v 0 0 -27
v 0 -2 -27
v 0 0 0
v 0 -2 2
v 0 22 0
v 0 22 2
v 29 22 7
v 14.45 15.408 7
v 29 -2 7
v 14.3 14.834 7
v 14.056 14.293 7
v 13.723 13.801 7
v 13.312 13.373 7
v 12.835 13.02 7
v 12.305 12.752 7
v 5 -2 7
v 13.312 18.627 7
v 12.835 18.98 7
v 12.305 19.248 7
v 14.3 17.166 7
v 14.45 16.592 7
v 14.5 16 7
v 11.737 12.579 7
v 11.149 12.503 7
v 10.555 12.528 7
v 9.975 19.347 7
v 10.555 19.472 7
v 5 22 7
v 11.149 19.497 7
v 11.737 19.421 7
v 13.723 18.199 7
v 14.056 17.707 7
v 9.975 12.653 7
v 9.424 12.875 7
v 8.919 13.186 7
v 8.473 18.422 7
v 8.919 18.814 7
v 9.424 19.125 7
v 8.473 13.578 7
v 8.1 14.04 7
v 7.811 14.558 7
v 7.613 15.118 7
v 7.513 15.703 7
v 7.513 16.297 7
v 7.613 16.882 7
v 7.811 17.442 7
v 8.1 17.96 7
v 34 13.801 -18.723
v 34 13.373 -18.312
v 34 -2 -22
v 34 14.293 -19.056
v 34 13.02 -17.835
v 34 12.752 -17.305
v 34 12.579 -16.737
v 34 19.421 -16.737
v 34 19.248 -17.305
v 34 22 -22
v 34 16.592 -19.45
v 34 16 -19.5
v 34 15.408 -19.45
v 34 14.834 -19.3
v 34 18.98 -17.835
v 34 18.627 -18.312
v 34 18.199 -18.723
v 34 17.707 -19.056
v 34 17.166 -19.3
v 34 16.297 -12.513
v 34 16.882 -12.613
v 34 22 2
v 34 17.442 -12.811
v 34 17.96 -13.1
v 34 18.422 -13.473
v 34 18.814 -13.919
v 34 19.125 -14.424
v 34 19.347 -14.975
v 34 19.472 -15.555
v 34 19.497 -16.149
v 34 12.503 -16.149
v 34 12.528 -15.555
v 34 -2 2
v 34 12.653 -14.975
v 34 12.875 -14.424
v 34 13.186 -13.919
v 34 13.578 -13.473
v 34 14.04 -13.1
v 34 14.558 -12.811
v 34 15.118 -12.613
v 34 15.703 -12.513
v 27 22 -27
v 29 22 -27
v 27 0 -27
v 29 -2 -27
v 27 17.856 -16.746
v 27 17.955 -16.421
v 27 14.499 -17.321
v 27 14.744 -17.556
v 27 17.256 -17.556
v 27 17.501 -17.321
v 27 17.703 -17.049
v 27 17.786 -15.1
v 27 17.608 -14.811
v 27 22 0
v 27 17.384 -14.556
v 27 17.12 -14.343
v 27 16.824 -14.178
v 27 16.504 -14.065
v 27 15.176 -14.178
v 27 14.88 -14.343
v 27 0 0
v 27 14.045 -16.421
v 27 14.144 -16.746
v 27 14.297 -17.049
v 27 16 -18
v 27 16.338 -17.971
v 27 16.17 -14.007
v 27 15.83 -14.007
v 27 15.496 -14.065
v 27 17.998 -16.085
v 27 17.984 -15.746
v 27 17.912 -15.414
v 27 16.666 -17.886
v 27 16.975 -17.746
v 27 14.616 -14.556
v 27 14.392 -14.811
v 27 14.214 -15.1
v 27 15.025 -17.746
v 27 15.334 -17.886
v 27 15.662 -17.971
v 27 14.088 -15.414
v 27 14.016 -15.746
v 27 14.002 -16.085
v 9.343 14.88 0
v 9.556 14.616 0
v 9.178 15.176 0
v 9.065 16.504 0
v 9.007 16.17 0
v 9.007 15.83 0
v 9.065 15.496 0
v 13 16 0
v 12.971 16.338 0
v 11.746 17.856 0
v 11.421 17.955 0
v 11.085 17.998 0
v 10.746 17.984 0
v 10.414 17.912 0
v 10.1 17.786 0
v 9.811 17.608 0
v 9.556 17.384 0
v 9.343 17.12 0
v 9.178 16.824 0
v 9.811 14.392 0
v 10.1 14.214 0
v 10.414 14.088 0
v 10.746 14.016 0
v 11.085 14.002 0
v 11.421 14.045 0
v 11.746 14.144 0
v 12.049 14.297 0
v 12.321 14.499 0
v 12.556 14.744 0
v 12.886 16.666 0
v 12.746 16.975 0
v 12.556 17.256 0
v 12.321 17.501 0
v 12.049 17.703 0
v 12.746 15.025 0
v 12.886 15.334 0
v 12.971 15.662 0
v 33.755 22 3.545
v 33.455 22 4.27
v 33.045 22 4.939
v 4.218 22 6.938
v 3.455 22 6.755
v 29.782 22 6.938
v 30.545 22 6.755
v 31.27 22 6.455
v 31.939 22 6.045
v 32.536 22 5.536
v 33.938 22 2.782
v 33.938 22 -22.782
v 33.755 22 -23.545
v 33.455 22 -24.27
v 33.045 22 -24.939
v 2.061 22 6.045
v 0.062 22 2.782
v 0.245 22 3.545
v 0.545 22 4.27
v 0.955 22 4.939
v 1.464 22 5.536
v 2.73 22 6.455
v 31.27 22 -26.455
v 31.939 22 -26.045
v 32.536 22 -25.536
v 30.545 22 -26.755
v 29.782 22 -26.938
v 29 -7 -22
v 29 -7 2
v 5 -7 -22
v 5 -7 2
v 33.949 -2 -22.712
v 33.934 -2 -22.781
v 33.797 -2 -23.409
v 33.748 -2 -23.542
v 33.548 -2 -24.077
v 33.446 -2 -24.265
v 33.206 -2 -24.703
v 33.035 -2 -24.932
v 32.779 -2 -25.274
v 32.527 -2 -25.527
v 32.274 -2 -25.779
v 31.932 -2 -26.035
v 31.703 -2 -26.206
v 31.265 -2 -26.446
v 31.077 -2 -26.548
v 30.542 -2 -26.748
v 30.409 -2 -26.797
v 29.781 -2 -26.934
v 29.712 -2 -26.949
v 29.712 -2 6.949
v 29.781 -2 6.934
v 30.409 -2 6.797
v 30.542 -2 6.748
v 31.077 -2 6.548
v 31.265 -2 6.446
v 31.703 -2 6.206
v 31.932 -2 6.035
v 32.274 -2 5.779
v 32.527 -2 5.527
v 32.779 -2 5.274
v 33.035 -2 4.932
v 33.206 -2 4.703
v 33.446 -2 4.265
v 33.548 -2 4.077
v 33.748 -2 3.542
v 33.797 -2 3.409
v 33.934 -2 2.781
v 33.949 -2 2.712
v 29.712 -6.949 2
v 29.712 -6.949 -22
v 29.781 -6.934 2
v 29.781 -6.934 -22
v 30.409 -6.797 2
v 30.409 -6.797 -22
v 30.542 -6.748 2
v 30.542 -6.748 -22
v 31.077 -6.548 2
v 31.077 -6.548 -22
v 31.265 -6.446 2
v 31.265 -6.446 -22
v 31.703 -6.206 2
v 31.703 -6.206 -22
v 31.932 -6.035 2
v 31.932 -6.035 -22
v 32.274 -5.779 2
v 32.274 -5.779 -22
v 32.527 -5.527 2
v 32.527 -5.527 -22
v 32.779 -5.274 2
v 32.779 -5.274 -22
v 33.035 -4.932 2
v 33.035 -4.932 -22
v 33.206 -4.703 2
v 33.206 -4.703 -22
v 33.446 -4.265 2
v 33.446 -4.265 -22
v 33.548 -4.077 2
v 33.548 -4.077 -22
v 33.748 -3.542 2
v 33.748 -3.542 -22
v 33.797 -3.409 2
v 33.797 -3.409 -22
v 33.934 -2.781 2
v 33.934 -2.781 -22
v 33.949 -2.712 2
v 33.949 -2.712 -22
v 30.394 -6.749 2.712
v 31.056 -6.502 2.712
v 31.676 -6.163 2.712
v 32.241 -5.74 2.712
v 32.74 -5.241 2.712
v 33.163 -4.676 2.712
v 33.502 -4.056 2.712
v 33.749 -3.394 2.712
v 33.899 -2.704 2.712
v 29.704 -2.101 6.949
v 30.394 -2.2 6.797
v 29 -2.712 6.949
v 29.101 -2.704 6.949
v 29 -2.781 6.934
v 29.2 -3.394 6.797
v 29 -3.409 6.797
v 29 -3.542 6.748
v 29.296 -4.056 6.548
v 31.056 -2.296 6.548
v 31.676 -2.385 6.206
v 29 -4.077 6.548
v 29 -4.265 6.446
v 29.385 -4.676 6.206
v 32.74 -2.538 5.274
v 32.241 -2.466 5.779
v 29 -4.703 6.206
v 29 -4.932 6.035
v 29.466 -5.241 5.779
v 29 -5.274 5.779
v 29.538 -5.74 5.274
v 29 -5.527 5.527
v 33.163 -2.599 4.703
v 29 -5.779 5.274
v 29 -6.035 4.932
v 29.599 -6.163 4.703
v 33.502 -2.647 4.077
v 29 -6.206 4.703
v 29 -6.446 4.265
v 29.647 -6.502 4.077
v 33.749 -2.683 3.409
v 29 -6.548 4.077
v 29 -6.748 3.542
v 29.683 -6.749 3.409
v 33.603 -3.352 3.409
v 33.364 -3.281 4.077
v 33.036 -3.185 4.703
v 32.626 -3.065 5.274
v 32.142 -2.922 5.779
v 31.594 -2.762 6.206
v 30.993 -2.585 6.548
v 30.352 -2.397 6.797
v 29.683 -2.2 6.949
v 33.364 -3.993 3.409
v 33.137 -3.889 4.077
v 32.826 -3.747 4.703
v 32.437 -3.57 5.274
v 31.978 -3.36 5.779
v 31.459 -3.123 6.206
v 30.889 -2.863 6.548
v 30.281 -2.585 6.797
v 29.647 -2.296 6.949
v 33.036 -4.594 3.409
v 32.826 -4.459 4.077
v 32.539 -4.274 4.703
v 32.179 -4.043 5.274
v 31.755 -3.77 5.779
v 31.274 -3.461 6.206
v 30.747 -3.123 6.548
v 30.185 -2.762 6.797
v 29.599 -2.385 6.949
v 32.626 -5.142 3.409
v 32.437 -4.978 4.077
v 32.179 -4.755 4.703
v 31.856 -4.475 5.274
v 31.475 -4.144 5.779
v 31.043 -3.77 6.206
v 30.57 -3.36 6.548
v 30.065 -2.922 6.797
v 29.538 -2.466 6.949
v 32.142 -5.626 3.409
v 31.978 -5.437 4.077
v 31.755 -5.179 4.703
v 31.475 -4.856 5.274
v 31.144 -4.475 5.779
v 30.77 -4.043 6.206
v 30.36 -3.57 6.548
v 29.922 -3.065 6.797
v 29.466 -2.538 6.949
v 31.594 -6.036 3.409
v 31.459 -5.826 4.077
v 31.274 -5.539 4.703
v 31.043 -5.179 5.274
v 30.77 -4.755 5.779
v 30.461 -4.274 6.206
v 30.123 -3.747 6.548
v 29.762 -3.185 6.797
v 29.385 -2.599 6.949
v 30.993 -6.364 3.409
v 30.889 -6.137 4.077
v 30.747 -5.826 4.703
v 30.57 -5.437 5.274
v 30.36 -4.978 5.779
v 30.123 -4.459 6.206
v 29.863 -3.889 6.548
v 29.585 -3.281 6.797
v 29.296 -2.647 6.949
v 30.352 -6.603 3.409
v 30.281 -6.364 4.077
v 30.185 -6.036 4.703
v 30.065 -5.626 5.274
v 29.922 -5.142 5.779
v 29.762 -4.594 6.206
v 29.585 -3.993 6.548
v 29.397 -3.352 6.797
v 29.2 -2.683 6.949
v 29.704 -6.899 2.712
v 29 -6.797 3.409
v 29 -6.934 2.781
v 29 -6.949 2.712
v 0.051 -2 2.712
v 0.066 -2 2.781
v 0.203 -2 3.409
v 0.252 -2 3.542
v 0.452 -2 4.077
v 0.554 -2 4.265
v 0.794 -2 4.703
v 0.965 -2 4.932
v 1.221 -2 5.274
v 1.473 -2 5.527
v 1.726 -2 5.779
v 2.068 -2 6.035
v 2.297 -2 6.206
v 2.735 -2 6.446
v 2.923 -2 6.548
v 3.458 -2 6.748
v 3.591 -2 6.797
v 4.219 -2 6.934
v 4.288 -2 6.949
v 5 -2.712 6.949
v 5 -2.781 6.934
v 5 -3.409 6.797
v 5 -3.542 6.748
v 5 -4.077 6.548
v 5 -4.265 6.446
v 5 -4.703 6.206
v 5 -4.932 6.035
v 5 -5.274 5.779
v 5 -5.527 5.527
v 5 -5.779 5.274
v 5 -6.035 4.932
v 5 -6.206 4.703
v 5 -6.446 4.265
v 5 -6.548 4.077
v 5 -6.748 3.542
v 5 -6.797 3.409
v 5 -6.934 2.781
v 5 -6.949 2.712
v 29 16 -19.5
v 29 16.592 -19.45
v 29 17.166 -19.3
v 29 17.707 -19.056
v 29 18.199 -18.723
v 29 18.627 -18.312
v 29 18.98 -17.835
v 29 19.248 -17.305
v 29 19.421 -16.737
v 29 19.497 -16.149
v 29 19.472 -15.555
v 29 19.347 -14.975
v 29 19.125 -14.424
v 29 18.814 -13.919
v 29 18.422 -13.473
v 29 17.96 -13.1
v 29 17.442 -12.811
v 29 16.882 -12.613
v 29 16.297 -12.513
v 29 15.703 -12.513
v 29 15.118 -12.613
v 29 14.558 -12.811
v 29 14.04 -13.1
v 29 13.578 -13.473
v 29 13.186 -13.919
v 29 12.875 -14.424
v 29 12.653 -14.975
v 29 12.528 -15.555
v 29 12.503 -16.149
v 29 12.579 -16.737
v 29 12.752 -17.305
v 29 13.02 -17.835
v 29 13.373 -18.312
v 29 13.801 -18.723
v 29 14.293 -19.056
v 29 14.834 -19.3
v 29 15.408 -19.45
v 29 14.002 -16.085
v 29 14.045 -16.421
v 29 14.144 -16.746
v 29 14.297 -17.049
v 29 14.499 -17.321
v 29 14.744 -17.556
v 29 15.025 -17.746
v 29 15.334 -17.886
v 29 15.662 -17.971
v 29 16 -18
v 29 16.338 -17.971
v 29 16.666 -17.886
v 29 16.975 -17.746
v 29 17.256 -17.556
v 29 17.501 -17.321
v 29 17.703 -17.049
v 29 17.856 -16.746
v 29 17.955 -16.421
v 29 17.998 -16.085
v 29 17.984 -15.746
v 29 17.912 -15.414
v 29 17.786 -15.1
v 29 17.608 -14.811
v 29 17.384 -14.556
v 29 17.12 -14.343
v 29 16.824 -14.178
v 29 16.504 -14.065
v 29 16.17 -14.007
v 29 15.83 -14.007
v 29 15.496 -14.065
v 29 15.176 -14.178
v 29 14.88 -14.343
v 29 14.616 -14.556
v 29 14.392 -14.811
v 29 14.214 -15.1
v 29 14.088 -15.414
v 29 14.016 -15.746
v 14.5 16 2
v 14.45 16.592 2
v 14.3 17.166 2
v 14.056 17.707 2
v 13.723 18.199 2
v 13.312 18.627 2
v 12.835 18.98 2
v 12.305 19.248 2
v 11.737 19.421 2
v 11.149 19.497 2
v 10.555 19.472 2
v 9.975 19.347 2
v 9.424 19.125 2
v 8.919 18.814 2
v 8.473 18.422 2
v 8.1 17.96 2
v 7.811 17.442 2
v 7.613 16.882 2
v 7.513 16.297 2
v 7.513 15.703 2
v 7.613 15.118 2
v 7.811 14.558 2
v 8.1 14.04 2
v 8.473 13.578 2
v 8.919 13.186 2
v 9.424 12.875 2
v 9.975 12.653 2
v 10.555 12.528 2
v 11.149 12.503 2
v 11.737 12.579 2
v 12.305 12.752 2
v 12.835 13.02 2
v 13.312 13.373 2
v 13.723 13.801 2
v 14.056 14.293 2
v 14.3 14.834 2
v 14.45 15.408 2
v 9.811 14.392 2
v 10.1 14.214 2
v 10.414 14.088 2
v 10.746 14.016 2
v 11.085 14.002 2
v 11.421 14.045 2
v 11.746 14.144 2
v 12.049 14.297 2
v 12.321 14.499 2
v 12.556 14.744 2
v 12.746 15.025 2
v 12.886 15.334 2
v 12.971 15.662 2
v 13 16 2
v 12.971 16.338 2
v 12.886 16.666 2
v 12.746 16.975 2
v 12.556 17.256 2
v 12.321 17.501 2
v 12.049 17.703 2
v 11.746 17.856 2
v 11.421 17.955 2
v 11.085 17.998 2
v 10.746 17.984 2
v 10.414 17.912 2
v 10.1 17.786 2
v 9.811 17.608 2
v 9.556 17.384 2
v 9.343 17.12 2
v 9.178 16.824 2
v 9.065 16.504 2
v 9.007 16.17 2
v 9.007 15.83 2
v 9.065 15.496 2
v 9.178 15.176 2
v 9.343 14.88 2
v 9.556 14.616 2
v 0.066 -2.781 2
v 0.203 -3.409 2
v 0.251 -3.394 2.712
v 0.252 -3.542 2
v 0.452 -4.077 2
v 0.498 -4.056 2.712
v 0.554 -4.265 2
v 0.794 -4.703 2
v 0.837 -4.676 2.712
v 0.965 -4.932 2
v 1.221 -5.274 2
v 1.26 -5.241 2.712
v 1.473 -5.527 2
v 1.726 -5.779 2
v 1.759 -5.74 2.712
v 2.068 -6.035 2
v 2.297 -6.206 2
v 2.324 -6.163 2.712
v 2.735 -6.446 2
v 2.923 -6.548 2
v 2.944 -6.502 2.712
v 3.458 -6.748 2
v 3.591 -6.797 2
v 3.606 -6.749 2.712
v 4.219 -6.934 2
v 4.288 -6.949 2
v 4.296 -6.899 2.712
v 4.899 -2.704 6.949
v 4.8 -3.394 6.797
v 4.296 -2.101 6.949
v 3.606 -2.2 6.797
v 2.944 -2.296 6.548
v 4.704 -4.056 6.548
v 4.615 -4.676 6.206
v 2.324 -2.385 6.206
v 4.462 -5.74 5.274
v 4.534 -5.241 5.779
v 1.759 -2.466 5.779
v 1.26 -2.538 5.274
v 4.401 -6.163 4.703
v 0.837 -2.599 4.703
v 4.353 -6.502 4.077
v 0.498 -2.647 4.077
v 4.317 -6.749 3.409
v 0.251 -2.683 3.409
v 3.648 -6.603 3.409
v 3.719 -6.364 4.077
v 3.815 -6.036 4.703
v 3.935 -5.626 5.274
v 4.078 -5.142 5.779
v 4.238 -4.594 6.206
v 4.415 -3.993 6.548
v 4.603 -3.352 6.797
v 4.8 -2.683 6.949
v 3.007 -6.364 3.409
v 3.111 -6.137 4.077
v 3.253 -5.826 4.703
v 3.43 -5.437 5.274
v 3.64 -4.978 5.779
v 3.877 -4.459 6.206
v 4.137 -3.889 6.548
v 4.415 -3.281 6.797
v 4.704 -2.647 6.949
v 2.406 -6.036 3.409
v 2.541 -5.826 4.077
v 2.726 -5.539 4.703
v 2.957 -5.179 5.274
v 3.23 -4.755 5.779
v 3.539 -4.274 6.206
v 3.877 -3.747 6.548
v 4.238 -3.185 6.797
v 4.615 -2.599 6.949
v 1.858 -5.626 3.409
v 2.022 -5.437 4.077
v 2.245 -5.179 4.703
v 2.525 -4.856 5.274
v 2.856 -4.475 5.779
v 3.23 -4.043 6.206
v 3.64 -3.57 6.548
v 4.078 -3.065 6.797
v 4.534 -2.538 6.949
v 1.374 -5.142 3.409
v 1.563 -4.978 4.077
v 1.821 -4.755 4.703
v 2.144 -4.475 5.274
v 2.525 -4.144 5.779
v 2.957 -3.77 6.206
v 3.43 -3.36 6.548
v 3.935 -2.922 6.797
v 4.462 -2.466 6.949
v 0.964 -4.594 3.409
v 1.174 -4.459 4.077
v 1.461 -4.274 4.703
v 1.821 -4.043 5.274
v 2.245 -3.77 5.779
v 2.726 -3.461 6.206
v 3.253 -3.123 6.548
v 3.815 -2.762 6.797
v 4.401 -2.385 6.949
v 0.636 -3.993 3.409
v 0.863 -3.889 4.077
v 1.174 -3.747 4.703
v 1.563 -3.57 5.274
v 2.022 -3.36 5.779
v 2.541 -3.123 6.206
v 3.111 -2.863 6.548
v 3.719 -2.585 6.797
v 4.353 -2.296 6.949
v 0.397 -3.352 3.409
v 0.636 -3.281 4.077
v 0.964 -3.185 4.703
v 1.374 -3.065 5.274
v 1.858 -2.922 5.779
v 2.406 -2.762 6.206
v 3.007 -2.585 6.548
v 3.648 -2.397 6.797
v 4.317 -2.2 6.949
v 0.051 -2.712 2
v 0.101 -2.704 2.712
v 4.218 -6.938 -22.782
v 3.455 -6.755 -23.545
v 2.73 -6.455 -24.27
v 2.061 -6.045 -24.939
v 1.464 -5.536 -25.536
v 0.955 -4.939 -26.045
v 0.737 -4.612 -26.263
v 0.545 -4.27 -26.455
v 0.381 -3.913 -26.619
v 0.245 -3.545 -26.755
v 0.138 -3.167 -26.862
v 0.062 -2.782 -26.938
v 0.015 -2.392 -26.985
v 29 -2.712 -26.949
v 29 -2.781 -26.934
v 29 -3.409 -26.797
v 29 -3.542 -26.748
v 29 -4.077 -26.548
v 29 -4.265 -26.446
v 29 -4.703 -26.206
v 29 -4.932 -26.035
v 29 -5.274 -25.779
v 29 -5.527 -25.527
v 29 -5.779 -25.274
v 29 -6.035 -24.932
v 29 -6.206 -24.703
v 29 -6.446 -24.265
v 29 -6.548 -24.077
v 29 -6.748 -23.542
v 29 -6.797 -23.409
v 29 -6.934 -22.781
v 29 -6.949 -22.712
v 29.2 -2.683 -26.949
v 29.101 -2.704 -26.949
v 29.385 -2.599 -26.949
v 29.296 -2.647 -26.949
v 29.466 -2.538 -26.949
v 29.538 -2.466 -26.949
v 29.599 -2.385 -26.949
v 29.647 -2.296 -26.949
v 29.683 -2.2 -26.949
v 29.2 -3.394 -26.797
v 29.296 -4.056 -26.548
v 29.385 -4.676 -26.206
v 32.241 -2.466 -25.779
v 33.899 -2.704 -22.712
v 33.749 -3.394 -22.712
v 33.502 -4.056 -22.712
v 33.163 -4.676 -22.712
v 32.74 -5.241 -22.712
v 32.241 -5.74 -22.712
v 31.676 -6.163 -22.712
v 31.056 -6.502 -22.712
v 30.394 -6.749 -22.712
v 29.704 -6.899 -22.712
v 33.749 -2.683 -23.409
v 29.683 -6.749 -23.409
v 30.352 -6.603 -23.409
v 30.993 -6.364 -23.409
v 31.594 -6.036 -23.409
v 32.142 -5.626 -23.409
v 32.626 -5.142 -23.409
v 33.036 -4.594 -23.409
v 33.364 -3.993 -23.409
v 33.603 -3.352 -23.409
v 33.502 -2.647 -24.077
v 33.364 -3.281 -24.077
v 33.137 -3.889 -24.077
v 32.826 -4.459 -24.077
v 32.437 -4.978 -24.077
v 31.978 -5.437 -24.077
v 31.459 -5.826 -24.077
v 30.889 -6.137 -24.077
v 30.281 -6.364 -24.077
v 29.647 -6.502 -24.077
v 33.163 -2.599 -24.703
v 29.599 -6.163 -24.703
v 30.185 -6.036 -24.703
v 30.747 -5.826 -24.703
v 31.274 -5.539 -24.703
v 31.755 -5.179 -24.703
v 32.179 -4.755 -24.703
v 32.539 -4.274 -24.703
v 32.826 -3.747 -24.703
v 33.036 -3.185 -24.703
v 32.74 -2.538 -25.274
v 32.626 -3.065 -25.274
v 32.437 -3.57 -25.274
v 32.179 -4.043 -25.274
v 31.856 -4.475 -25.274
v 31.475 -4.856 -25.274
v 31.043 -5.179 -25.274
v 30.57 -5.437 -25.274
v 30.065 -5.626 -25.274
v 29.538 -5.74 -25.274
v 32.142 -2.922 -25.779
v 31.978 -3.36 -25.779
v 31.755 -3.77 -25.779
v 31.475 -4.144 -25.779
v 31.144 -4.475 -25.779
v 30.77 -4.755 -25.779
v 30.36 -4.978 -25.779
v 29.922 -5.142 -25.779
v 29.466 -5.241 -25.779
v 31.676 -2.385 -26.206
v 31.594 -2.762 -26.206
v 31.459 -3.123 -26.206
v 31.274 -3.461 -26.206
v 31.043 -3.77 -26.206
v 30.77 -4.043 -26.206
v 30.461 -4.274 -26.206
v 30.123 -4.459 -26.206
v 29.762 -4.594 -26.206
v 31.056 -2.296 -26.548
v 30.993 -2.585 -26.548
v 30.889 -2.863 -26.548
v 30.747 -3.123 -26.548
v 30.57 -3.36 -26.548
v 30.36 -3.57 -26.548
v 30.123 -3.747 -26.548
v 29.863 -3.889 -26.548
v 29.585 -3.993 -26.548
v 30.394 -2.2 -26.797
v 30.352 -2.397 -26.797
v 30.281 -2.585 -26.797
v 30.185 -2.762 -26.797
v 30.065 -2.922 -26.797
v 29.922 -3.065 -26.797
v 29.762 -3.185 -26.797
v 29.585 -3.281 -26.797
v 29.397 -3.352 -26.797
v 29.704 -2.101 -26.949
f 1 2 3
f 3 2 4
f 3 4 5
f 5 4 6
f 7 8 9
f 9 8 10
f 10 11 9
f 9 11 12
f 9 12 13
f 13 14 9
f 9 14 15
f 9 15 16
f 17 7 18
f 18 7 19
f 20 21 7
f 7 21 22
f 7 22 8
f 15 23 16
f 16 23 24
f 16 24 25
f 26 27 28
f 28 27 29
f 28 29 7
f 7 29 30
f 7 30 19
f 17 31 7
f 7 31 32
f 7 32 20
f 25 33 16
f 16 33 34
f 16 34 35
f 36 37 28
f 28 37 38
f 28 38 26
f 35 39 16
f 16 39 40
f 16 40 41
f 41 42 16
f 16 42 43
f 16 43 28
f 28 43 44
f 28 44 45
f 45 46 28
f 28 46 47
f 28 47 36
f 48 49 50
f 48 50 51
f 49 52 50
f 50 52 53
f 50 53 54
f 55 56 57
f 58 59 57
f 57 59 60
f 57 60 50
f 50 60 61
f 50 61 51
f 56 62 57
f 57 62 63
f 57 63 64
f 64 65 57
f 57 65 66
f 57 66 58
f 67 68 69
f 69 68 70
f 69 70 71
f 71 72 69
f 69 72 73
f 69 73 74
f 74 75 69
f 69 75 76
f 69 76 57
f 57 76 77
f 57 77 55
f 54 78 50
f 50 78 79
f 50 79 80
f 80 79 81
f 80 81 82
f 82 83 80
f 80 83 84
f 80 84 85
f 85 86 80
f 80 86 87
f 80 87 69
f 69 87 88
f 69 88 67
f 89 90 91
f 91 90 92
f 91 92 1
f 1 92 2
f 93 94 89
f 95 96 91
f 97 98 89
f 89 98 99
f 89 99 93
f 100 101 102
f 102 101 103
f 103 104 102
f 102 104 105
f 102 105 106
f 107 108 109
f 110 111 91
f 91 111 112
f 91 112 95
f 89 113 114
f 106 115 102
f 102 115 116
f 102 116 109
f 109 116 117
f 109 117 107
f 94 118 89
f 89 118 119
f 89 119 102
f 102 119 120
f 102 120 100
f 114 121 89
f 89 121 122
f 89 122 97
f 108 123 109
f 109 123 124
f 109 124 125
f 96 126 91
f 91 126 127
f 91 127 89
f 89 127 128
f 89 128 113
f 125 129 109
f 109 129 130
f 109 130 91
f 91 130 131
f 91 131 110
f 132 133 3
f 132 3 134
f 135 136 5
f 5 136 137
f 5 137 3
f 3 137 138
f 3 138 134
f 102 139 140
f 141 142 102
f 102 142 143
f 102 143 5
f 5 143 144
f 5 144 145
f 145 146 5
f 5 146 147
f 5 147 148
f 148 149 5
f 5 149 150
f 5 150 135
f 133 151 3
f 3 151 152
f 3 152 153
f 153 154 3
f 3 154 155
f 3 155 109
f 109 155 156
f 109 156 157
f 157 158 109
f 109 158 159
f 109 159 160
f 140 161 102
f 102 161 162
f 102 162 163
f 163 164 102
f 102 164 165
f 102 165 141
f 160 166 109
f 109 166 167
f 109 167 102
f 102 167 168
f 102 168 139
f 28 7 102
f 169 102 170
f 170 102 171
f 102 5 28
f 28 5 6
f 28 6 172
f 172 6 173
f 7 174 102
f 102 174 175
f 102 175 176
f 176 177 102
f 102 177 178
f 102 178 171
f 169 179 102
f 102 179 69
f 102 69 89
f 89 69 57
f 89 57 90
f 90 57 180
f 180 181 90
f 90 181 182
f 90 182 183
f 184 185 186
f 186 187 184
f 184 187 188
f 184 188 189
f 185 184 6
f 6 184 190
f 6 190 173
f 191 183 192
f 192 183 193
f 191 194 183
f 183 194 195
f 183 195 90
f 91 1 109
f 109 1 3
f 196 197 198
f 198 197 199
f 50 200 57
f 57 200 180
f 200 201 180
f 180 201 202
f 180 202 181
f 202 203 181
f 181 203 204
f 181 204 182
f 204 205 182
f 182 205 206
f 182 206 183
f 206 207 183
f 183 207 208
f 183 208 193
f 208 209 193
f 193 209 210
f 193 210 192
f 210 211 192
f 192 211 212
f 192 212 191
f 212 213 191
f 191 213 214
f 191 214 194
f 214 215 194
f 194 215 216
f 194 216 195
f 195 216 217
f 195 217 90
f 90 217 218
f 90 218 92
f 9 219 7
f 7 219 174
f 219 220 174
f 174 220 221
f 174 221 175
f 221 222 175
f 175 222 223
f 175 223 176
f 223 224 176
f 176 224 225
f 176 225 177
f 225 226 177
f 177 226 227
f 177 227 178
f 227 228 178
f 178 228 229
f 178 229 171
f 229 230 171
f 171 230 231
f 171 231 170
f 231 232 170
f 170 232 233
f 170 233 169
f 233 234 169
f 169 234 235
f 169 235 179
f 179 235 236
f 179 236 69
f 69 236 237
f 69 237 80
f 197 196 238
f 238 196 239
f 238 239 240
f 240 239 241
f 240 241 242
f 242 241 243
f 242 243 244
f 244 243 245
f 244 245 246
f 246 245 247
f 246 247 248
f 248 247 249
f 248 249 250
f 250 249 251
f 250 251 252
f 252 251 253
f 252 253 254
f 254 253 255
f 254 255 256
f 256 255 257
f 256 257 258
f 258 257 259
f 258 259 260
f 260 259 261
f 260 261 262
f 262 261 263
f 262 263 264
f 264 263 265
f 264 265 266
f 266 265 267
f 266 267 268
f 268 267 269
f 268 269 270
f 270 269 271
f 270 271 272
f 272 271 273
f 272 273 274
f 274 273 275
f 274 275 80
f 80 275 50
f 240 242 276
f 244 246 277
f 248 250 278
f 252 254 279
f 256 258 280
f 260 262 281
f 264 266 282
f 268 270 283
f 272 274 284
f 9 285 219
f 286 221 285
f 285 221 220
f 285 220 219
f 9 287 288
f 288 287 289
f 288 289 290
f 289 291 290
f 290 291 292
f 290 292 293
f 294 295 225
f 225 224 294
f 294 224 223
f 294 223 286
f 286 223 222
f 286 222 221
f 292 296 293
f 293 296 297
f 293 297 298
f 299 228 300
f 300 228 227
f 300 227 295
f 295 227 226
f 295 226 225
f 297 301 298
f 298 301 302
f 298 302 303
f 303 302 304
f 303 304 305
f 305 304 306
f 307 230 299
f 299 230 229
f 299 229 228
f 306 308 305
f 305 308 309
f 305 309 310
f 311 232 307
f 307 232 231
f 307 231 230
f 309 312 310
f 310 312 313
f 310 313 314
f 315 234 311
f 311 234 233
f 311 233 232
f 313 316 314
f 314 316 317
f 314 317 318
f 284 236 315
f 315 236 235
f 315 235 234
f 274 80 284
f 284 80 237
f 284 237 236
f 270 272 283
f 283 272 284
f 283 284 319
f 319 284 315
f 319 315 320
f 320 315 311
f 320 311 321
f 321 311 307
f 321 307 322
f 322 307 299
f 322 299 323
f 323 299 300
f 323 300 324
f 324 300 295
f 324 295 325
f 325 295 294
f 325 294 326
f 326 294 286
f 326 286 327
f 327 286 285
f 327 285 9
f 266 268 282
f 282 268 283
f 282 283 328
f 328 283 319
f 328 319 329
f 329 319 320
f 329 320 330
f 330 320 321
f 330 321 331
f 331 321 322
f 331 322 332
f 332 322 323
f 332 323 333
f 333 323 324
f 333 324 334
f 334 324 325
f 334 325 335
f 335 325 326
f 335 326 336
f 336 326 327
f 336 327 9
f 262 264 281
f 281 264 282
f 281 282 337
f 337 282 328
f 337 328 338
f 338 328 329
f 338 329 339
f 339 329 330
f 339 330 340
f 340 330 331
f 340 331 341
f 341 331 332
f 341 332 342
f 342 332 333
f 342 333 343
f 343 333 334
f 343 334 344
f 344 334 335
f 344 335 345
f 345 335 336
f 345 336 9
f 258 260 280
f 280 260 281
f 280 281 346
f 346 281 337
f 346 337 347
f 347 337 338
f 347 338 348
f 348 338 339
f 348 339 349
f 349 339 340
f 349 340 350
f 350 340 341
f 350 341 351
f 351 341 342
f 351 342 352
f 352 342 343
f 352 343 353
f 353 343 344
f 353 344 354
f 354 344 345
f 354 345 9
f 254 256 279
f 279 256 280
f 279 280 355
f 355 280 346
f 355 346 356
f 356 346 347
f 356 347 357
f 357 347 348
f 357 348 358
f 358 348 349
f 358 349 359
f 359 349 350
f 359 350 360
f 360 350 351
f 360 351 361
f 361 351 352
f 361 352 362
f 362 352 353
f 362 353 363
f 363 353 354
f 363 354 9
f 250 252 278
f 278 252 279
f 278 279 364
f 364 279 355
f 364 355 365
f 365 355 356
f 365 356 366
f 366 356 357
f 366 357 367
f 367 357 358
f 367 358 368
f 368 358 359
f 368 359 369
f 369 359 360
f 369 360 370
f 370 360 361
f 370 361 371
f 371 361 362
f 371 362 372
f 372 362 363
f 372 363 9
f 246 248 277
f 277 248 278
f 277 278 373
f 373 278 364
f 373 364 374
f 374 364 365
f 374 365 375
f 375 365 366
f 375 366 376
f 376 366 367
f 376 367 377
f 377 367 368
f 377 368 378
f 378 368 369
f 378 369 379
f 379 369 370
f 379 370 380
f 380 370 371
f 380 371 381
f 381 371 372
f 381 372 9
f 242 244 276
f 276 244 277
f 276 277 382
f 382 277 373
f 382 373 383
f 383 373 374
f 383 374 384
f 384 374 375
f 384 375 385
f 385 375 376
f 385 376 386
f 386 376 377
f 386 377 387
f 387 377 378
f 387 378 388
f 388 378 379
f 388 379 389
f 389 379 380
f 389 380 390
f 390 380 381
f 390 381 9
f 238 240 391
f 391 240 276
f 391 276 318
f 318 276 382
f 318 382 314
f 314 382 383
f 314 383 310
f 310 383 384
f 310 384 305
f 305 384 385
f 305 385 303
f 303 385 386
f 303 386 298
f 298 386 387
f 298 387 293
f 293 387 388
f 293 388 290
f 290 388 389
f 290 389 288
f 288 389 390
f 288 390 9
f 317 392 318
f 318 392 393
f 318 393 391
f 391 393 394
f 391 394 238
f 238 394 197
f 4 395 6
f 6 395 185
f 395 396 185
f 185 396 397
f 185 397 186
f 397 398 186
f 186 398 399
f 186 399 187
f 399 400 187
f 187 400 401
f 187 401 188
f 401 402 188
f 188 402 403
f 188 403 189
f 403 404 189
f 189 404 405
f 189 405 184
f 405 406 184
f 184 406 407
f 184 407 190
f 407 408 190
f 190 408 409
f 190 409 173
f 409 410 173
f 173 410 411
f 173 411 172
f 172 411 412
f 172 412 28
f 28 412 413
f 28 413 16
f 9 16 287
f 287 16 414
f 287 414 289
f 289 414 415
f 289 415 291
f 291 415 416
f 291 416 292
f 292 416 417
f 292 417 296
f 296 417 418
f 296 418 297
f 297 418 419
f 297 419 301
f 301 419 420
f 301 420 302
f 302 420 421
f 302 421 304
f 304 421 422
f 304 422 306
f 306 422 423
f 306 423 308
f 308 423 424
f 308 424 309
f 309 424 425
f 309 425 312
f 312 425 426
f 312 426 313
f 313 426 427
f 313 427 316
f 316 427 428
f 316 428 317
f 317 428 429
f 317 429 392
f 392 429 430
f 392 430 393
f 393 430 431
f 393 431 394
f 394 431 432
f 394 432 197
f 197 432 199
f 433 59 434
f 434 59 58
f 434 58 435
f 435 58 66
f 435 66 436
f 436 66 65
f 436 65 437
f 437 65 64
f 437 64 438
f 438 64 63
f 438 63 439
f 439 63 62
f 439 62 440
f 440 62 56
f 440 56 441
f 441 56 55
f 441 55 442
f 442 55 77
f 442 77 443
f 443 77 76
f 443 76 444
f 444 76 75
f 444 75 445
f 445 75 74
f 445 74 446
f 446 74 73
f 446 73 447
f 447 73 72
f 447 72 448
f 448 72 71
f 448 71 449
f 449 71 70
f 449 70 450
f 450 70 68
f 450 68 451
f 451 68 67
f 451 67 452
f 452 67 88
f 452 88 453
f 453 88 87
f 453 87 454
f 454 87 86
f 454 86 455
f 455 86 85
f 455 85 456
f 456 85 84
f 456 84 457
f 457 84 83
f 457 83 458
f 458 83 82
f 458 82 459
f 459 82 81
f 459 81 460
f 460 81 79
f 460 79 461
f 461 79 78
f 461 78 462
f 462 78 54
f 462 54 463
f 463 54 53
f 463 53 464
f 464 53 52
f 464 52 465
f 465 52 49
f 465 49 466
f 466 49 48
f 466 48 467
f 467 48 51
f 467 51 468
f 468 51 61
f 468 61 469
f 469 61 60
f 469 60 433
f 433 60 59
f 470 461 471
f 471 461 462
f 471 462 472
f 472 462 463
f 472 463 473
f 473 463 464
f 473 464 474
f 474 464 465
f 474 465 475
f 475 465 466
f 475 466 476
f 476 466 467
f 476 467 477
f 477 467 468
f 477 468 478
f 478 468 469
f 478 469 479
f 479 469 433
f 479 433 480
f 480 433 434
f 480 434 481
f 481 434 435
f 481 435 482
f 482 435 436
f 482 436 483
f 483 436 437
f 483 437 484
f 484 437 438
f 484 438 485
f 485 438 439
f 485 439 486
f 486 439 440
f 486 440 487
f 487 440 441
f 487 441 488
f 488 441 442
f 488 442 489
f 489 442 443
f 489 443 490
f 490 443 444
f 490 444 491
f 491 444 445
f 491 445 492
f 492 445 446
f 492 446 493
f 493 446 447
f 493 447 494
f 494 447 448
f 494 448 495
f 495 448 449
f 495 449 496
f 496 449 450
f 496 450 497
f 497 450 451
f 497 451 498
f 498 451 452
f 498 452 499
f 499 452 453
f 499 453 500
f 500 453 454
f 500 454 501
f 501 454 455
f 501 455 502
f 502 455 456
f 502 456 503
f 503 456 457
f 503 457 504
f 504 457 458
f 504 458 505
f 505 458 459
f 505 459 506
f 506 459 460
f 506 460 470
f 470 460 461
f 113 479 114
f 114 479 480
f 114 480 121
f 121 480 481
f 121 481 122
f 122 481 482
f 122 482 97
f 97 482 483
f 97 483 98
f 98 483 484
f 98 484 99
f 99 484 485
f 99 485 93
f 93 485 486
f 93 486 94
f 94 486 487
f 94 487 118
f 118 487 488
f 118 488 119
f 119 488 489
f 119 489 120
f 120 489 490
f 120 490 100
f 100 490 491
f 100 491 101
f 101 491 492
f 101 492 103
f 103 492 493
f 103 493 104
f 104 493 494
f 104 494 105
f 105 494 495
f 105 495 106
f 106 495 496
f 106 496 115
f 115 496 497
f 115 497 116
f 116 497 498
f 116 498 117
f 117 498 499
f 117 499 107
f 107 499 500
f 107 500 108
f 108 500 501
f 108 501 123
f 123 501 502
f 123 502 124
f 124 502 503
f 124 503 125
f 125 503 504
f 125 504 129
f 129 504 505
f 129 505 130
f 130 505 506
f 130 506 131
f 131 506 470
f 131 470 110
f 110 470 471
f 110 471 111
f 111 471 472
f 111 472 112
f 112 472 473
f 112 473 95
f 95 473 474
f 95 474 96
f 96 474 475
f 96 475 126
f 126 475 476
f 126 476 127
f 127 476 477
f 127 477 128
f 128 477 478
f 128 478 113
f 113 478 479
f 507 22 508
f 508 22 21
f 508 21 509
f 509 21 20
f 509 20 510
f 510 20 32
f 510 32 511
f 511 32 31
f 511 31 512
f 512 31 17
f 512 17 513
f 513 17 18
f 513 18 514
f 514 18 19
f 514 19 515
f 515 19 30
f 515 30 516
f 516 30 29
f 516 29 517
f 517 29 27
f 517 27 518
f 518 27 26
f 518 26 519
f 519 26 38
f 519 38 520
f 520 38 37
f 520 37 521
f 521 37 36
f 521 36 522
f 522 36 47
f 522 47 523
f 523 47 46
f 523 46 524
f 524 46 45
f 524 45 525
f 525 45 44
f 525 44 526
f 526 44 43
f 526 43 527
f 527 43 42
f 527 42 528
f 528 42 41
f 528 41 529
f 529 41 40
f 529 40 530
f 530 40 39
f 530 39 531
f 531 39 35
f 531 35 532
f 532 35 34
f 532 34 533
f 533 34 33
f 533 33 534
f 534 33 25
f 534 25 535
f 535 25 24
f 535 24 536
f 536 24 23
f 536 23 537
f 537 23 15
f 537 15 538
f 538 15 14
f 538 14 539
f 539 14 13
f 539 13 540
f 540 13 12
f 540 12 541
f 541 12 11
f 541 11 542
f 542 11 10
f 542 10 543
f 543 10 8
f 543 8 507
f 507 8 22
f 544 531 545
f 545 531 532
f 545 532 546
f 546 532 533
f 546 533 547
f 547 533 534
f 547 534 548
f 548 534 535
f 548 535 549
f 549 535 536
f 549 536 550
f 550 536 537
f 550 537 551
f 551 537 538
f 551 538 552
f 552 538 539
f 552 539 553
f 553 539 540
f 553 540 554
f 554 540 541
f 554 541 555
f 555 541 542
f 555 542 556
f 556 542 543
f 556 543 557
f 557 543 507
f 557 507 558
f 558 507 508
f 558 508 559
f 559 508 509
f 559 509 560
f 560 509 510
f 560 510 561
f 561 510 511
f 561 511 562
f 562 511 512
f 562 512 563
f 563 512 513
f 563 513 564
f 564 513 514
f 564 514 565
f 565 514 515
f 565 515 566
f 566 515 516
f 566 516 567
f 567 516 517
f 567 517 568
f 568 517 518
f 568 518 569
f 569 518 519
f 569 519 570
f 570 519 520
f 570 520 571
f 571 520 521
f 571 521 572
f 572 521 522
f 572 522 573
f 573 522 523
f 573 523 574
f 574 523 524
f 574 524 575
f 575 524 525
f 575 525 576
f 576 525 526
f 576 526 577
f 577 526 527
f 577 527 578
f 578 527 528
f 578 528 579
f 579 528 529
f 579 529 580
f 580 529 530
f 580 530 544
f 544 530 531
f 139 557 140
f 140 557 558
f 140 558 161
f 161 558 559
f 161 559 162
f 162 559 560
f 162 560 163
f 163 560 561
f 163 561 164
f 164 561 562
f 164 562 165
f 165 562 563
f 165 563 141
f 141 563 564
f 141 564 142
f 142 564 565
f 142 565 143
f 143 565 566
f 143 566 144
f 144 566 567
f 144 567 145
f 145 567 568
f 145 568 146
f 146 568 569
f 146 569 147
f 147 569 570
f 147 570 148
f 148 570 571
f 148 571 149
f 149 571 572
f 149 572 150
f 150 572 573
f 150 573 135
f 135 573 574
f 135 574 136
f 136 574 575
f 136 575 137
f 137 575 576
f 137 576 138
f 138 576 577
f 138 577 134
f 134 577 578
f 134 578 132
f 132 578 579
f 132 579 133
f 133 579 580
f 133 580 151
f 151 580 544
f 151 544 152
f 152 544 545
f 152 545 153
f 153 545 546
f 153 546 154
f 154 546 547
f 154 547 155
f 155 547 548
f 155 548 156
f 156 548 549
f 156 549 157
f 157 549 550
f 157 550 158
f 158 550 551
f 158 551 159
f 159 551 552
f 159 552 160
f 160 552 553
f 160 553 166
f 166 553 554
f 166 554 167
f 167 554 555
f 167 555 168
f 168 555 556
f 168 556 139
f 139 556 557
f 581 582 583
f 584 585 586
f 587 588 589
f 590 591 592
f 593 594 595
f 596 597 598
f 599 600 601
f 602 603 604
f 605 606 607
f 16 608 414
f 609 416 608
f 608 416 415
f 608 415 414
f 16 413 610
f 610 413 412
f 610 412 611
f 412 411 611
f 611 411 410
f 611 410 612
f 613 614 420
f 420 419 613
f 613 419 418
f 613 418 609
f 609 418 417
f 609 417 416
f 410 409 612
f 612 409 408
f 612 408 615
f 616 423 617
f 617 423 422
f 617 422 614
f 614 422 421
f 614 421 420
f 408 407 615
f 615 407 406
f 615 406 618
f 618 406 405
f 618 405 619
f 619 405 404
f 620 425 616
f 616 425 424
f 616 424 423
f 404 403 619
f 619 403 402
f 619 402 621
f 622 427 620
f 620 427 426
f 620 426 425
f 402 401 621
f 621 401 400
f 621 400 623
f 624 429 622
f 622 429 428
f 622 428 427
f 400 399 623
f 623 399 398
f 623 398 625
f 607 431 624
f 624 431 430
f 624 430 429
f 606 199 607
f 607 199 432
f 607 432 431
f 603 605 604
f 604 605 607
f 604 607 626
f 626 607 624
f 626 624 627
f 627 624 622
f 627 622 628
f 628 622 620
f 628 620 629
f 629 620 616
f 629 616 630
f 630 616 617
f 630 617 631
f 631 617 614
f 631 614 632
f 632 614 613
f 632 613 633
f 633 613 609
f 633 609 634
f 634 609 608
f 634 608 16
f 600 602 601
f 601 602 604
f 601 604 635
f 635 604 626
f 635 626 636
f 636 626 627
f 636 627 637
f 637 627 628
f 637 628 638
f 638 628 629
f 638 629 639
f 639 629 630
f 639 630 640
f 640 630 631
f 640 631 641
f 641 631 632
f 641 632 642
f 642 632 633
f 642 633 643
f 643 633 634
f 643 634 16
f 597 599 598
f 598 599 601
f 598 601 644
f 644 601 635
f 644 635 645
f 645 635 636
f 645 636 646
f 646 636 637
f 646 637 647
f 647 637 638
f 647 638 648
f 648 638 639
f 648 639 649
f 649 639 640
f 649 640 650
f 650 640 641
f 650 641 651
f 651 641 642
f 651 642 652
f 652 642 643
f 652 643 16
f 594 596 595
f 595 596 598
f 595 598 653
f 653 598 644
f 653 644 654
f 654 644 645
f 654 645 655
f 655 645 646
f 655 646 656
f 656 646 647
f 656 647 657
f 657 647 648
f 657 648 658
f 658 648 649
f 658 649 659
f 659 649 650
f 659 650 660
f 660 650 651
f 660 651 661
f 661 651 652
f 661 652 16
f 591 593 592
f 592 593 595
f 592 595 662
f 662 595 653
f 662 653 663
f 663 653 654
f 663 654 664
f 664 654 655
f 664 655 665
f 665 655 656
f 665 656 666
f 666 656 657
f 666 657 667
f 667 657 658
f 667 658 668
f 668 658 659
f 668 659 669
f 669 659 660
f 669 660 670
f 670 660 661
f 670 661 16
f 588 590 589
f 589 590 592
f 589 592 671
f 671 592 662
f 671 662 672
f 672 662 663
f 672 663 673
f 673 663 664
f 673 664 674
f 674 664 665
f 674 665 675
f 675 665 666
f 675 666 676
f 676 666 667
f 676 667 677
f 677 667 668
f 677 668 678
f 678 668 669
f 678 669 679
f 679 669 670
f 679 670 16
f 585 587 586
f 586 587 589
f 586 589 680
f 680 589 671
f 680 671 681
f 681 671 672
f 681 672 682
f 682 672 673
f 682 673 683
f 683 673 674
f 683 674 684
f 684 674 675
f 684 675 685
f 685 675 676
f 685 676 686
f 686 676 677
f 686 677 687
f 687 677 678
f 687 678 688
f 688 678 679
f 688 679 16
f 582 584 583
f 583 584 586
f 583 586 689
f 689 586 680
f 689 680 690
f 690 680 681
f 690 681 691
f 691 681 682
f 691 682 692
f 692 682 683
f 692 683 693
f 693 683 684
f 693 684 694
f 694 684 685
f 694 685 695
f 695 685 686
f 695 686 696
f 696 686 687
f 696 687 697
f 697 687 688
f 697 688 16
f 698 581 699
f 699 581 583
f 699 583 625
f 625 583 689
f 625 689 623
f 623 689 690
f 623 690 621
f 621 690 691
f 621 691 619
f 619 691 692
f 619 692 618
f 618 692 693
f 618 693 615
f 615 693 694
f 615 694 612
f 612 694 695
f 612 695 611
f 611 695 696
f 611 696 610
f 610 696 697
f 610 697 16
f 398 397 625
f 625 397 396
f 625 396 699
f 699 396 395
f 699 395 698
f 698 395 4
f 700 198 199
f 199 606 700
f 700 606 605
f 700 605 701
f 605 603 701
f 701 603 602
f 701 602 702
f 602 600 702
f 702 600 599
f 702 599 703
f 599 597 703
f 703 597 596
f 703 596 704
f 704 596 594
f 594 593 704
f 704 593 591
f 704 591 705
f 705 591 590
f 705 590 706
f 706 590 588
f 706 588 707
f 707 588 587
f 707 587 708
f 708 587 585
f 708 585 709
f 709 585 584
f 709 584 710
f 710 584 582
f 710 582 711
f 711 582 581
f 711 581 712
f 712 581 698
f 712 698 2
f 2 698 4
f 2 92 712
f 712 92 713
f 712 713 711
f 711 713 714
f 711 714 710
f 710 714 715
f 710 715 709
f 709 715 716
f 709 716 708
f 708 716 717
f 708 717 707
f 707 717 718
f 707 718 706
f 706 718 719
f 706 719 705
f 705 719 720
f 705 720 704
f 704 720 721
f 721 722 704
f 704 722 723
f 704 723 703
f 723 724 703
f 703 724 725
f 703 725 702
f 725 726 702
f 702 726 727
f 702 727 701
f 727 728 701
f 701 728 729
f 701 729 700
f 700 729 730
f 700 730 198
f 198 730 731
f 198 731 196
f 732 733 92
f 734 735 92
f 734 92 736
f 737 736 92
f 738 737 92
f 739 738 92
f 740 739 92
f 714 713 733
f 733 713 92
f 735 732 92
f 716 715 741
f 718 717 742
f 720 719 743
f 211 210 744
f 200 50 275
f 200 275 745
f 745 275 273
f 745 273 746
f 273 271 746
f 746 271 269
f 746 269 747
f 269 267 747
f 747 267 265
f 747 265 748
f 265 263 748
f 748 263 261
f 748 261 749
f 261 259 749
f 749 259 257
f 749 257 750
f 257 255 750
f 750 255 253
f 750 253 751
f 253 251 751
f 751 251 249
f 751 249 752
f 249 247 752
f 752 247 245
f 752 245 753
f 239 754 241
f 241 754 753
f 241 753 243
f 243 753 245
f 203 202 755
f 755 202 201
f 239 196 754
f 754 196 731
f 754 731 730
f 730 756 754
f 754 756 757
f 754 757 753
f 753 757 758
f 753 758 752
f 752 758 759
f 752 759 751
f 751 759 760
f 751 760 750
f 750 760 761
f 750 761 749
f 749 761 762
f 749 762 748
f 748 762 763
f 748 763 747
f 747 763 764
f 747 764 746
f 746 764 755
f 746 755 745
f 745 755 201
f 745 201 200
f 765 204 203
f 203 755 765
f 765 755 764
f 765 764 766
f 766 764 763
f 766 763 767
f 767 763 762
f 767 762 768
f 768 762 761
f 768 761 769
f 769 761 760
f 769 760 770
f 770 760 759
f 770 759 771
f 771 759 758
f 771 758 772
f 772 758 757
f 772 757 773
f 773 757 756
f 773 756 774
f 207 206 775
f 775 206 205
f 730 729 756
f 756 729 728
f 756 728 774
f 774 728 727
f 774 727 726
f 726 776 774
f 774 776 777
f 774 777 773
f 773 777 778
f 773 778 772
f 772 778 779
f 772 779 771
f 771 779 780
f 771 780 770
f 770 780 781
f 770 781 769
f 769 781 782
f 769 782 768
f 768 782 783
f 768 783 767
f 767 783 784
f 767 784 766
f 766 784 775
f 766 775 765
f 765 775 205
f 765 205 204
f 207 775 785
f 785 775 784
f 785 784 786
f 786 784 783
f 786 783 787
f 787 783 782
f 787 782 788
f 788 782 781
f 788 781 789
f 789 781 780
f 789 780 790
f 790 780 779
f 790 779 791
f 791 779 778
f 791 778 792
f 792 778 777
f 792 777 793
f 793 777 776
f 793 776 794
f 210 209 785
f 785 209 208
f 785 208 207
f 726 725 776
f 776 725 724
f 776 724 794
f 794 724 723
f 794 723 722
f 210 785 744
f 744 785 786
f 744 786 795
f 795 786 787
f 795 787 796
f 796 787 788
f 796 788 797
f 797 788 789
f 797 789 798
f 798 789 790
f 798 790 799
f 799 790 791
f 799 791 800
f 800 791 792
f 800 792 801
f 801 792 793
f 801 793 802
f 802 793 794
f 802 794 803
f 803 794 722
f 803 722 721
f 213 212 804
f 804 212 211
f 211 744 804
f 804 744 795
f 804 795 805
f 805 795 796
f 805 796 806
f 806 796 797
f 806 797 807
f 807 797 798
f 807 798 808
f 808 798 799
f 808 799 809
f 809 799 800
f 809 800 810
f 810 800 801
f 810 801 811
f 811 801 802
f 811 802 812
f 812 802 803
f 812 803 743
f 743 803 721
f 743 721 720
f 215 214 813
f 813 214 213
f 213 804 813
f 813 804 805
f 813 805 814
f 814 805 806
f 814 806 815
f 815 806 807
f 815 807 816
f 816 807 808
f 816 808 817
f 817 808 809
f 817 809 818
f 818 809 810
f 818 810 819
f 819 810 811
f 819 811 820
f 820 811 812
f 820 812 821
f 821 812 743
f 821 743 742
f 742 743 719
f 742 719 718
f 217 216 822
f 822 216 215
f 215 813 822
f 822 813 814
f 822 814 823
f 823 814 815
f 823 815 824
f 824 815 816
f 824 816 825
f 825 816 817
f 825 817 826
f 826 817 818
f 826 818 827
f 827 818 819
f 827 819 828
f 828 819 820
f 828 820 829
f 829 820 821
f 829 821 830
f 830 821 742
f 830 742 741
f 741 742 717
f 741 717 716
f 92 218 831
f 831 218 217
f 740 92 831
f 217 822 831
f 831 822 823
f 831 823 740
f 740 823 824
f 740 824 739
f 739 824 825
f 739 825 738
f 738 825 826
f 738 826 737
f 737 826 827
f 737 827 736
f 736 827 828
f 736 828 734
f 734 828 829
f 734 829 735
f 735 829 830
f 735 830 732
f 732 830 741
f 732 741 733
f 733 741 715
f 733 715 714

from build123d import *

# Parameters (mm, degrees)
SALIENTE_EXTRUIR1_DEPTH = 22
CROQUIS2_W              = 34
CROQUIS2_H              = 34
SALIENTE_EXTRUIR2_DEPTH = 7
REDONDEO1_R             = 5
CROQUIS3_R              = 3.5
CORTAR_EXTRUIR1_DEPTH   = 5
CROQUIS4_R              = 2
CORTAR_EXTRUIR2_DEPTH   = 5
CROQUIS5_R              = 3.5
CORTAR_EXTRUIR3_DEPTH   = 5
CROQUIS6_R              = 2
CORTAR_EXTRUIR4_DEPTH   = 5
REDONDEO2_R             = 5


with BuildPart() as part:
    # Croquis1 → Saliente-Extruir1 (new body)
    with BuildSketch(Plane(origin=(0, 0, 0), x_dir=(1, 0, 0), z_dir=(0, 1, 0))):
        Polygon((0, 0), (27, 0), (27, 27), (34, 27), (34, -7), (0, -7), align=None)
    extrude(amount=SALIENTE_EXTRUIR1_DEPTH)

    # Croquis2 → Saliente-Extruir2 (add)
    with BuildSketch(Plane(origin=(0, 0, 0), x_dir=(-1, 0, 0), z_dir=(0, -1, 0))):
        with Locations((-17, 10)):
            Rectangle(CROQUIS2_W, CROQUIS2_H)
    extrude(amount=SALIENTE_EXTRUIR2_DEPTH)

    # Redondeo1
    redondeo1_edges = [part.edges().sort_by_distance(p)[0] for p in [
        (34, 7.5, -27),
        (34, 7.5, 7),
        (0, 7.5, 7),
        (34, -7, -10),
        (17, -7, 7),
    ]]
    fillet(redondeo1_edges, radius=REDONDEO1_R)

    # Croquis3 → Cortar-Extruir1 (cut)
    with BuildSketch(Plane(origin=(34, 0, 0), x_dir=(0, 0, -1), z_dir=(1, 0, 0))):
        with Locations((16, 16)):
            Circle(CROQUIS3_R)
    extrude(amount=-CORTAR_EXTRUIR1_DEPTH, mode=Mode.SUBTRACT)

    # Croquis4 → Cortar-Extruir2 (cut)
    with BuildSketch(Plane(origin=(29, 0, 0), x_dir=(0, 0, -1), z_dir=(1, 0, 0))):
        with Locations((16, 16)):
            Circle(CROQUIS4_R)
    extrude(amount=-CORTAR_EXTRUIR2_DEPTH, mode=Mode.SUBTRACT)

    # Croquis5 → Cortar-Extruir3 (cut)
    with BuildSketch(Plane.XY.offset(7)):
        with Locations((11, 16)):
            Circle(CROQUIS5_R)
    extrude(amount=-CORTAR_EXTRUIR3_DEPTH, mode=Mode.SUBTRACT)

    # Croquis6 → Cortar-Extruir4 (cut)
    with BuildSketch(Plane.XY.offset(2)):
        with Locations((11, 16)):
            Circle(CROQUIS6_R)
    extrude(amount=-CORTAR_EXTRUIR4_DEPTH, mode=Mode.SUBTRACT)

    # Redondeo2
    # the kernel refuses this fillet: 5 mm, written as the material it takes off along each edge
    with BuildSketch(Plane(origin=(29, -2, -22), x_dir=(0, -1, 0), z_dir=(0, 0, -1))) as redondeo2_piece_1_section:
        Polygon((0, 0), (REDONDEO2_R, 0), (REDONDEO2_R, -REDONDEO2_R), (0, -REDONDEO2_R), align=None)
    redondeo2_piece_1 = extrude(amount=REDONDEO2_R, mode=Mode.PRIVATE)
    redondeo2_piece_1 = redondeo2_piece_1 - Plane(origin=(29, -2, -22), x_dir=(-0.7071067811865475, 0.7071067811865475, 0), z_dir=(0, 0, -1)) * Sphere(REDONDEO2_R, mode=Mode.PRIVATE)
    add(redondeo2_piece_1, mode=Mode.SUBTRACT)
    with BuildSketch(Plane(origin=(5, -2, 2), x_dir=(0, -1, 0), z_dir=(-1, 0, 0))) as redondeo2_piece_2_section:
        Polygon((0, 0), (REDONDEO2_R, 0), (REDONDEO2_R, REDONDEO2_R), (0, REDONDEO2_R), align=None)
    redondeo2_piece_2 = extrude(amount=REDONDEO2_R, mode=Mode.PRIVATE)
    redondeo2_piece_2 = redondeo2_piece_2 - Plane(origin=(5, -2, 2), x_dir=(0, 0.7071067811865475, -0.7071067811865475), z_dir=(-1, 0, 0)) * Sphere(REDONDEO2_R, mode=Mode.PRIVATE)
    add(redondeo2_piece_2, mode=Mode.SUBTRACT)
    with BuildSketch(Plane(origin=(-12.5, -7, -27), x_dir=(0, 1, 0), z_dir=(1, 0, 0)), Plane(origin=(0, -7, 2), x_dir=(0, 1, 0), z_dir=(0, 0, -1))) as redondeo2_piece_3:
        with BuildLine():
            CenterArc((REDONDEO2_R, REDONDEO2_R), REDONDEO2_R, 180, 90)
            Line((0, REDONDEO2_R), (0, 0))
            Line((0, 0), (REDONDEO2_R, 0))
        make_face()
    extrude(amount=41.5, mode=Mode.SUBTRACT)


solid = part.part
